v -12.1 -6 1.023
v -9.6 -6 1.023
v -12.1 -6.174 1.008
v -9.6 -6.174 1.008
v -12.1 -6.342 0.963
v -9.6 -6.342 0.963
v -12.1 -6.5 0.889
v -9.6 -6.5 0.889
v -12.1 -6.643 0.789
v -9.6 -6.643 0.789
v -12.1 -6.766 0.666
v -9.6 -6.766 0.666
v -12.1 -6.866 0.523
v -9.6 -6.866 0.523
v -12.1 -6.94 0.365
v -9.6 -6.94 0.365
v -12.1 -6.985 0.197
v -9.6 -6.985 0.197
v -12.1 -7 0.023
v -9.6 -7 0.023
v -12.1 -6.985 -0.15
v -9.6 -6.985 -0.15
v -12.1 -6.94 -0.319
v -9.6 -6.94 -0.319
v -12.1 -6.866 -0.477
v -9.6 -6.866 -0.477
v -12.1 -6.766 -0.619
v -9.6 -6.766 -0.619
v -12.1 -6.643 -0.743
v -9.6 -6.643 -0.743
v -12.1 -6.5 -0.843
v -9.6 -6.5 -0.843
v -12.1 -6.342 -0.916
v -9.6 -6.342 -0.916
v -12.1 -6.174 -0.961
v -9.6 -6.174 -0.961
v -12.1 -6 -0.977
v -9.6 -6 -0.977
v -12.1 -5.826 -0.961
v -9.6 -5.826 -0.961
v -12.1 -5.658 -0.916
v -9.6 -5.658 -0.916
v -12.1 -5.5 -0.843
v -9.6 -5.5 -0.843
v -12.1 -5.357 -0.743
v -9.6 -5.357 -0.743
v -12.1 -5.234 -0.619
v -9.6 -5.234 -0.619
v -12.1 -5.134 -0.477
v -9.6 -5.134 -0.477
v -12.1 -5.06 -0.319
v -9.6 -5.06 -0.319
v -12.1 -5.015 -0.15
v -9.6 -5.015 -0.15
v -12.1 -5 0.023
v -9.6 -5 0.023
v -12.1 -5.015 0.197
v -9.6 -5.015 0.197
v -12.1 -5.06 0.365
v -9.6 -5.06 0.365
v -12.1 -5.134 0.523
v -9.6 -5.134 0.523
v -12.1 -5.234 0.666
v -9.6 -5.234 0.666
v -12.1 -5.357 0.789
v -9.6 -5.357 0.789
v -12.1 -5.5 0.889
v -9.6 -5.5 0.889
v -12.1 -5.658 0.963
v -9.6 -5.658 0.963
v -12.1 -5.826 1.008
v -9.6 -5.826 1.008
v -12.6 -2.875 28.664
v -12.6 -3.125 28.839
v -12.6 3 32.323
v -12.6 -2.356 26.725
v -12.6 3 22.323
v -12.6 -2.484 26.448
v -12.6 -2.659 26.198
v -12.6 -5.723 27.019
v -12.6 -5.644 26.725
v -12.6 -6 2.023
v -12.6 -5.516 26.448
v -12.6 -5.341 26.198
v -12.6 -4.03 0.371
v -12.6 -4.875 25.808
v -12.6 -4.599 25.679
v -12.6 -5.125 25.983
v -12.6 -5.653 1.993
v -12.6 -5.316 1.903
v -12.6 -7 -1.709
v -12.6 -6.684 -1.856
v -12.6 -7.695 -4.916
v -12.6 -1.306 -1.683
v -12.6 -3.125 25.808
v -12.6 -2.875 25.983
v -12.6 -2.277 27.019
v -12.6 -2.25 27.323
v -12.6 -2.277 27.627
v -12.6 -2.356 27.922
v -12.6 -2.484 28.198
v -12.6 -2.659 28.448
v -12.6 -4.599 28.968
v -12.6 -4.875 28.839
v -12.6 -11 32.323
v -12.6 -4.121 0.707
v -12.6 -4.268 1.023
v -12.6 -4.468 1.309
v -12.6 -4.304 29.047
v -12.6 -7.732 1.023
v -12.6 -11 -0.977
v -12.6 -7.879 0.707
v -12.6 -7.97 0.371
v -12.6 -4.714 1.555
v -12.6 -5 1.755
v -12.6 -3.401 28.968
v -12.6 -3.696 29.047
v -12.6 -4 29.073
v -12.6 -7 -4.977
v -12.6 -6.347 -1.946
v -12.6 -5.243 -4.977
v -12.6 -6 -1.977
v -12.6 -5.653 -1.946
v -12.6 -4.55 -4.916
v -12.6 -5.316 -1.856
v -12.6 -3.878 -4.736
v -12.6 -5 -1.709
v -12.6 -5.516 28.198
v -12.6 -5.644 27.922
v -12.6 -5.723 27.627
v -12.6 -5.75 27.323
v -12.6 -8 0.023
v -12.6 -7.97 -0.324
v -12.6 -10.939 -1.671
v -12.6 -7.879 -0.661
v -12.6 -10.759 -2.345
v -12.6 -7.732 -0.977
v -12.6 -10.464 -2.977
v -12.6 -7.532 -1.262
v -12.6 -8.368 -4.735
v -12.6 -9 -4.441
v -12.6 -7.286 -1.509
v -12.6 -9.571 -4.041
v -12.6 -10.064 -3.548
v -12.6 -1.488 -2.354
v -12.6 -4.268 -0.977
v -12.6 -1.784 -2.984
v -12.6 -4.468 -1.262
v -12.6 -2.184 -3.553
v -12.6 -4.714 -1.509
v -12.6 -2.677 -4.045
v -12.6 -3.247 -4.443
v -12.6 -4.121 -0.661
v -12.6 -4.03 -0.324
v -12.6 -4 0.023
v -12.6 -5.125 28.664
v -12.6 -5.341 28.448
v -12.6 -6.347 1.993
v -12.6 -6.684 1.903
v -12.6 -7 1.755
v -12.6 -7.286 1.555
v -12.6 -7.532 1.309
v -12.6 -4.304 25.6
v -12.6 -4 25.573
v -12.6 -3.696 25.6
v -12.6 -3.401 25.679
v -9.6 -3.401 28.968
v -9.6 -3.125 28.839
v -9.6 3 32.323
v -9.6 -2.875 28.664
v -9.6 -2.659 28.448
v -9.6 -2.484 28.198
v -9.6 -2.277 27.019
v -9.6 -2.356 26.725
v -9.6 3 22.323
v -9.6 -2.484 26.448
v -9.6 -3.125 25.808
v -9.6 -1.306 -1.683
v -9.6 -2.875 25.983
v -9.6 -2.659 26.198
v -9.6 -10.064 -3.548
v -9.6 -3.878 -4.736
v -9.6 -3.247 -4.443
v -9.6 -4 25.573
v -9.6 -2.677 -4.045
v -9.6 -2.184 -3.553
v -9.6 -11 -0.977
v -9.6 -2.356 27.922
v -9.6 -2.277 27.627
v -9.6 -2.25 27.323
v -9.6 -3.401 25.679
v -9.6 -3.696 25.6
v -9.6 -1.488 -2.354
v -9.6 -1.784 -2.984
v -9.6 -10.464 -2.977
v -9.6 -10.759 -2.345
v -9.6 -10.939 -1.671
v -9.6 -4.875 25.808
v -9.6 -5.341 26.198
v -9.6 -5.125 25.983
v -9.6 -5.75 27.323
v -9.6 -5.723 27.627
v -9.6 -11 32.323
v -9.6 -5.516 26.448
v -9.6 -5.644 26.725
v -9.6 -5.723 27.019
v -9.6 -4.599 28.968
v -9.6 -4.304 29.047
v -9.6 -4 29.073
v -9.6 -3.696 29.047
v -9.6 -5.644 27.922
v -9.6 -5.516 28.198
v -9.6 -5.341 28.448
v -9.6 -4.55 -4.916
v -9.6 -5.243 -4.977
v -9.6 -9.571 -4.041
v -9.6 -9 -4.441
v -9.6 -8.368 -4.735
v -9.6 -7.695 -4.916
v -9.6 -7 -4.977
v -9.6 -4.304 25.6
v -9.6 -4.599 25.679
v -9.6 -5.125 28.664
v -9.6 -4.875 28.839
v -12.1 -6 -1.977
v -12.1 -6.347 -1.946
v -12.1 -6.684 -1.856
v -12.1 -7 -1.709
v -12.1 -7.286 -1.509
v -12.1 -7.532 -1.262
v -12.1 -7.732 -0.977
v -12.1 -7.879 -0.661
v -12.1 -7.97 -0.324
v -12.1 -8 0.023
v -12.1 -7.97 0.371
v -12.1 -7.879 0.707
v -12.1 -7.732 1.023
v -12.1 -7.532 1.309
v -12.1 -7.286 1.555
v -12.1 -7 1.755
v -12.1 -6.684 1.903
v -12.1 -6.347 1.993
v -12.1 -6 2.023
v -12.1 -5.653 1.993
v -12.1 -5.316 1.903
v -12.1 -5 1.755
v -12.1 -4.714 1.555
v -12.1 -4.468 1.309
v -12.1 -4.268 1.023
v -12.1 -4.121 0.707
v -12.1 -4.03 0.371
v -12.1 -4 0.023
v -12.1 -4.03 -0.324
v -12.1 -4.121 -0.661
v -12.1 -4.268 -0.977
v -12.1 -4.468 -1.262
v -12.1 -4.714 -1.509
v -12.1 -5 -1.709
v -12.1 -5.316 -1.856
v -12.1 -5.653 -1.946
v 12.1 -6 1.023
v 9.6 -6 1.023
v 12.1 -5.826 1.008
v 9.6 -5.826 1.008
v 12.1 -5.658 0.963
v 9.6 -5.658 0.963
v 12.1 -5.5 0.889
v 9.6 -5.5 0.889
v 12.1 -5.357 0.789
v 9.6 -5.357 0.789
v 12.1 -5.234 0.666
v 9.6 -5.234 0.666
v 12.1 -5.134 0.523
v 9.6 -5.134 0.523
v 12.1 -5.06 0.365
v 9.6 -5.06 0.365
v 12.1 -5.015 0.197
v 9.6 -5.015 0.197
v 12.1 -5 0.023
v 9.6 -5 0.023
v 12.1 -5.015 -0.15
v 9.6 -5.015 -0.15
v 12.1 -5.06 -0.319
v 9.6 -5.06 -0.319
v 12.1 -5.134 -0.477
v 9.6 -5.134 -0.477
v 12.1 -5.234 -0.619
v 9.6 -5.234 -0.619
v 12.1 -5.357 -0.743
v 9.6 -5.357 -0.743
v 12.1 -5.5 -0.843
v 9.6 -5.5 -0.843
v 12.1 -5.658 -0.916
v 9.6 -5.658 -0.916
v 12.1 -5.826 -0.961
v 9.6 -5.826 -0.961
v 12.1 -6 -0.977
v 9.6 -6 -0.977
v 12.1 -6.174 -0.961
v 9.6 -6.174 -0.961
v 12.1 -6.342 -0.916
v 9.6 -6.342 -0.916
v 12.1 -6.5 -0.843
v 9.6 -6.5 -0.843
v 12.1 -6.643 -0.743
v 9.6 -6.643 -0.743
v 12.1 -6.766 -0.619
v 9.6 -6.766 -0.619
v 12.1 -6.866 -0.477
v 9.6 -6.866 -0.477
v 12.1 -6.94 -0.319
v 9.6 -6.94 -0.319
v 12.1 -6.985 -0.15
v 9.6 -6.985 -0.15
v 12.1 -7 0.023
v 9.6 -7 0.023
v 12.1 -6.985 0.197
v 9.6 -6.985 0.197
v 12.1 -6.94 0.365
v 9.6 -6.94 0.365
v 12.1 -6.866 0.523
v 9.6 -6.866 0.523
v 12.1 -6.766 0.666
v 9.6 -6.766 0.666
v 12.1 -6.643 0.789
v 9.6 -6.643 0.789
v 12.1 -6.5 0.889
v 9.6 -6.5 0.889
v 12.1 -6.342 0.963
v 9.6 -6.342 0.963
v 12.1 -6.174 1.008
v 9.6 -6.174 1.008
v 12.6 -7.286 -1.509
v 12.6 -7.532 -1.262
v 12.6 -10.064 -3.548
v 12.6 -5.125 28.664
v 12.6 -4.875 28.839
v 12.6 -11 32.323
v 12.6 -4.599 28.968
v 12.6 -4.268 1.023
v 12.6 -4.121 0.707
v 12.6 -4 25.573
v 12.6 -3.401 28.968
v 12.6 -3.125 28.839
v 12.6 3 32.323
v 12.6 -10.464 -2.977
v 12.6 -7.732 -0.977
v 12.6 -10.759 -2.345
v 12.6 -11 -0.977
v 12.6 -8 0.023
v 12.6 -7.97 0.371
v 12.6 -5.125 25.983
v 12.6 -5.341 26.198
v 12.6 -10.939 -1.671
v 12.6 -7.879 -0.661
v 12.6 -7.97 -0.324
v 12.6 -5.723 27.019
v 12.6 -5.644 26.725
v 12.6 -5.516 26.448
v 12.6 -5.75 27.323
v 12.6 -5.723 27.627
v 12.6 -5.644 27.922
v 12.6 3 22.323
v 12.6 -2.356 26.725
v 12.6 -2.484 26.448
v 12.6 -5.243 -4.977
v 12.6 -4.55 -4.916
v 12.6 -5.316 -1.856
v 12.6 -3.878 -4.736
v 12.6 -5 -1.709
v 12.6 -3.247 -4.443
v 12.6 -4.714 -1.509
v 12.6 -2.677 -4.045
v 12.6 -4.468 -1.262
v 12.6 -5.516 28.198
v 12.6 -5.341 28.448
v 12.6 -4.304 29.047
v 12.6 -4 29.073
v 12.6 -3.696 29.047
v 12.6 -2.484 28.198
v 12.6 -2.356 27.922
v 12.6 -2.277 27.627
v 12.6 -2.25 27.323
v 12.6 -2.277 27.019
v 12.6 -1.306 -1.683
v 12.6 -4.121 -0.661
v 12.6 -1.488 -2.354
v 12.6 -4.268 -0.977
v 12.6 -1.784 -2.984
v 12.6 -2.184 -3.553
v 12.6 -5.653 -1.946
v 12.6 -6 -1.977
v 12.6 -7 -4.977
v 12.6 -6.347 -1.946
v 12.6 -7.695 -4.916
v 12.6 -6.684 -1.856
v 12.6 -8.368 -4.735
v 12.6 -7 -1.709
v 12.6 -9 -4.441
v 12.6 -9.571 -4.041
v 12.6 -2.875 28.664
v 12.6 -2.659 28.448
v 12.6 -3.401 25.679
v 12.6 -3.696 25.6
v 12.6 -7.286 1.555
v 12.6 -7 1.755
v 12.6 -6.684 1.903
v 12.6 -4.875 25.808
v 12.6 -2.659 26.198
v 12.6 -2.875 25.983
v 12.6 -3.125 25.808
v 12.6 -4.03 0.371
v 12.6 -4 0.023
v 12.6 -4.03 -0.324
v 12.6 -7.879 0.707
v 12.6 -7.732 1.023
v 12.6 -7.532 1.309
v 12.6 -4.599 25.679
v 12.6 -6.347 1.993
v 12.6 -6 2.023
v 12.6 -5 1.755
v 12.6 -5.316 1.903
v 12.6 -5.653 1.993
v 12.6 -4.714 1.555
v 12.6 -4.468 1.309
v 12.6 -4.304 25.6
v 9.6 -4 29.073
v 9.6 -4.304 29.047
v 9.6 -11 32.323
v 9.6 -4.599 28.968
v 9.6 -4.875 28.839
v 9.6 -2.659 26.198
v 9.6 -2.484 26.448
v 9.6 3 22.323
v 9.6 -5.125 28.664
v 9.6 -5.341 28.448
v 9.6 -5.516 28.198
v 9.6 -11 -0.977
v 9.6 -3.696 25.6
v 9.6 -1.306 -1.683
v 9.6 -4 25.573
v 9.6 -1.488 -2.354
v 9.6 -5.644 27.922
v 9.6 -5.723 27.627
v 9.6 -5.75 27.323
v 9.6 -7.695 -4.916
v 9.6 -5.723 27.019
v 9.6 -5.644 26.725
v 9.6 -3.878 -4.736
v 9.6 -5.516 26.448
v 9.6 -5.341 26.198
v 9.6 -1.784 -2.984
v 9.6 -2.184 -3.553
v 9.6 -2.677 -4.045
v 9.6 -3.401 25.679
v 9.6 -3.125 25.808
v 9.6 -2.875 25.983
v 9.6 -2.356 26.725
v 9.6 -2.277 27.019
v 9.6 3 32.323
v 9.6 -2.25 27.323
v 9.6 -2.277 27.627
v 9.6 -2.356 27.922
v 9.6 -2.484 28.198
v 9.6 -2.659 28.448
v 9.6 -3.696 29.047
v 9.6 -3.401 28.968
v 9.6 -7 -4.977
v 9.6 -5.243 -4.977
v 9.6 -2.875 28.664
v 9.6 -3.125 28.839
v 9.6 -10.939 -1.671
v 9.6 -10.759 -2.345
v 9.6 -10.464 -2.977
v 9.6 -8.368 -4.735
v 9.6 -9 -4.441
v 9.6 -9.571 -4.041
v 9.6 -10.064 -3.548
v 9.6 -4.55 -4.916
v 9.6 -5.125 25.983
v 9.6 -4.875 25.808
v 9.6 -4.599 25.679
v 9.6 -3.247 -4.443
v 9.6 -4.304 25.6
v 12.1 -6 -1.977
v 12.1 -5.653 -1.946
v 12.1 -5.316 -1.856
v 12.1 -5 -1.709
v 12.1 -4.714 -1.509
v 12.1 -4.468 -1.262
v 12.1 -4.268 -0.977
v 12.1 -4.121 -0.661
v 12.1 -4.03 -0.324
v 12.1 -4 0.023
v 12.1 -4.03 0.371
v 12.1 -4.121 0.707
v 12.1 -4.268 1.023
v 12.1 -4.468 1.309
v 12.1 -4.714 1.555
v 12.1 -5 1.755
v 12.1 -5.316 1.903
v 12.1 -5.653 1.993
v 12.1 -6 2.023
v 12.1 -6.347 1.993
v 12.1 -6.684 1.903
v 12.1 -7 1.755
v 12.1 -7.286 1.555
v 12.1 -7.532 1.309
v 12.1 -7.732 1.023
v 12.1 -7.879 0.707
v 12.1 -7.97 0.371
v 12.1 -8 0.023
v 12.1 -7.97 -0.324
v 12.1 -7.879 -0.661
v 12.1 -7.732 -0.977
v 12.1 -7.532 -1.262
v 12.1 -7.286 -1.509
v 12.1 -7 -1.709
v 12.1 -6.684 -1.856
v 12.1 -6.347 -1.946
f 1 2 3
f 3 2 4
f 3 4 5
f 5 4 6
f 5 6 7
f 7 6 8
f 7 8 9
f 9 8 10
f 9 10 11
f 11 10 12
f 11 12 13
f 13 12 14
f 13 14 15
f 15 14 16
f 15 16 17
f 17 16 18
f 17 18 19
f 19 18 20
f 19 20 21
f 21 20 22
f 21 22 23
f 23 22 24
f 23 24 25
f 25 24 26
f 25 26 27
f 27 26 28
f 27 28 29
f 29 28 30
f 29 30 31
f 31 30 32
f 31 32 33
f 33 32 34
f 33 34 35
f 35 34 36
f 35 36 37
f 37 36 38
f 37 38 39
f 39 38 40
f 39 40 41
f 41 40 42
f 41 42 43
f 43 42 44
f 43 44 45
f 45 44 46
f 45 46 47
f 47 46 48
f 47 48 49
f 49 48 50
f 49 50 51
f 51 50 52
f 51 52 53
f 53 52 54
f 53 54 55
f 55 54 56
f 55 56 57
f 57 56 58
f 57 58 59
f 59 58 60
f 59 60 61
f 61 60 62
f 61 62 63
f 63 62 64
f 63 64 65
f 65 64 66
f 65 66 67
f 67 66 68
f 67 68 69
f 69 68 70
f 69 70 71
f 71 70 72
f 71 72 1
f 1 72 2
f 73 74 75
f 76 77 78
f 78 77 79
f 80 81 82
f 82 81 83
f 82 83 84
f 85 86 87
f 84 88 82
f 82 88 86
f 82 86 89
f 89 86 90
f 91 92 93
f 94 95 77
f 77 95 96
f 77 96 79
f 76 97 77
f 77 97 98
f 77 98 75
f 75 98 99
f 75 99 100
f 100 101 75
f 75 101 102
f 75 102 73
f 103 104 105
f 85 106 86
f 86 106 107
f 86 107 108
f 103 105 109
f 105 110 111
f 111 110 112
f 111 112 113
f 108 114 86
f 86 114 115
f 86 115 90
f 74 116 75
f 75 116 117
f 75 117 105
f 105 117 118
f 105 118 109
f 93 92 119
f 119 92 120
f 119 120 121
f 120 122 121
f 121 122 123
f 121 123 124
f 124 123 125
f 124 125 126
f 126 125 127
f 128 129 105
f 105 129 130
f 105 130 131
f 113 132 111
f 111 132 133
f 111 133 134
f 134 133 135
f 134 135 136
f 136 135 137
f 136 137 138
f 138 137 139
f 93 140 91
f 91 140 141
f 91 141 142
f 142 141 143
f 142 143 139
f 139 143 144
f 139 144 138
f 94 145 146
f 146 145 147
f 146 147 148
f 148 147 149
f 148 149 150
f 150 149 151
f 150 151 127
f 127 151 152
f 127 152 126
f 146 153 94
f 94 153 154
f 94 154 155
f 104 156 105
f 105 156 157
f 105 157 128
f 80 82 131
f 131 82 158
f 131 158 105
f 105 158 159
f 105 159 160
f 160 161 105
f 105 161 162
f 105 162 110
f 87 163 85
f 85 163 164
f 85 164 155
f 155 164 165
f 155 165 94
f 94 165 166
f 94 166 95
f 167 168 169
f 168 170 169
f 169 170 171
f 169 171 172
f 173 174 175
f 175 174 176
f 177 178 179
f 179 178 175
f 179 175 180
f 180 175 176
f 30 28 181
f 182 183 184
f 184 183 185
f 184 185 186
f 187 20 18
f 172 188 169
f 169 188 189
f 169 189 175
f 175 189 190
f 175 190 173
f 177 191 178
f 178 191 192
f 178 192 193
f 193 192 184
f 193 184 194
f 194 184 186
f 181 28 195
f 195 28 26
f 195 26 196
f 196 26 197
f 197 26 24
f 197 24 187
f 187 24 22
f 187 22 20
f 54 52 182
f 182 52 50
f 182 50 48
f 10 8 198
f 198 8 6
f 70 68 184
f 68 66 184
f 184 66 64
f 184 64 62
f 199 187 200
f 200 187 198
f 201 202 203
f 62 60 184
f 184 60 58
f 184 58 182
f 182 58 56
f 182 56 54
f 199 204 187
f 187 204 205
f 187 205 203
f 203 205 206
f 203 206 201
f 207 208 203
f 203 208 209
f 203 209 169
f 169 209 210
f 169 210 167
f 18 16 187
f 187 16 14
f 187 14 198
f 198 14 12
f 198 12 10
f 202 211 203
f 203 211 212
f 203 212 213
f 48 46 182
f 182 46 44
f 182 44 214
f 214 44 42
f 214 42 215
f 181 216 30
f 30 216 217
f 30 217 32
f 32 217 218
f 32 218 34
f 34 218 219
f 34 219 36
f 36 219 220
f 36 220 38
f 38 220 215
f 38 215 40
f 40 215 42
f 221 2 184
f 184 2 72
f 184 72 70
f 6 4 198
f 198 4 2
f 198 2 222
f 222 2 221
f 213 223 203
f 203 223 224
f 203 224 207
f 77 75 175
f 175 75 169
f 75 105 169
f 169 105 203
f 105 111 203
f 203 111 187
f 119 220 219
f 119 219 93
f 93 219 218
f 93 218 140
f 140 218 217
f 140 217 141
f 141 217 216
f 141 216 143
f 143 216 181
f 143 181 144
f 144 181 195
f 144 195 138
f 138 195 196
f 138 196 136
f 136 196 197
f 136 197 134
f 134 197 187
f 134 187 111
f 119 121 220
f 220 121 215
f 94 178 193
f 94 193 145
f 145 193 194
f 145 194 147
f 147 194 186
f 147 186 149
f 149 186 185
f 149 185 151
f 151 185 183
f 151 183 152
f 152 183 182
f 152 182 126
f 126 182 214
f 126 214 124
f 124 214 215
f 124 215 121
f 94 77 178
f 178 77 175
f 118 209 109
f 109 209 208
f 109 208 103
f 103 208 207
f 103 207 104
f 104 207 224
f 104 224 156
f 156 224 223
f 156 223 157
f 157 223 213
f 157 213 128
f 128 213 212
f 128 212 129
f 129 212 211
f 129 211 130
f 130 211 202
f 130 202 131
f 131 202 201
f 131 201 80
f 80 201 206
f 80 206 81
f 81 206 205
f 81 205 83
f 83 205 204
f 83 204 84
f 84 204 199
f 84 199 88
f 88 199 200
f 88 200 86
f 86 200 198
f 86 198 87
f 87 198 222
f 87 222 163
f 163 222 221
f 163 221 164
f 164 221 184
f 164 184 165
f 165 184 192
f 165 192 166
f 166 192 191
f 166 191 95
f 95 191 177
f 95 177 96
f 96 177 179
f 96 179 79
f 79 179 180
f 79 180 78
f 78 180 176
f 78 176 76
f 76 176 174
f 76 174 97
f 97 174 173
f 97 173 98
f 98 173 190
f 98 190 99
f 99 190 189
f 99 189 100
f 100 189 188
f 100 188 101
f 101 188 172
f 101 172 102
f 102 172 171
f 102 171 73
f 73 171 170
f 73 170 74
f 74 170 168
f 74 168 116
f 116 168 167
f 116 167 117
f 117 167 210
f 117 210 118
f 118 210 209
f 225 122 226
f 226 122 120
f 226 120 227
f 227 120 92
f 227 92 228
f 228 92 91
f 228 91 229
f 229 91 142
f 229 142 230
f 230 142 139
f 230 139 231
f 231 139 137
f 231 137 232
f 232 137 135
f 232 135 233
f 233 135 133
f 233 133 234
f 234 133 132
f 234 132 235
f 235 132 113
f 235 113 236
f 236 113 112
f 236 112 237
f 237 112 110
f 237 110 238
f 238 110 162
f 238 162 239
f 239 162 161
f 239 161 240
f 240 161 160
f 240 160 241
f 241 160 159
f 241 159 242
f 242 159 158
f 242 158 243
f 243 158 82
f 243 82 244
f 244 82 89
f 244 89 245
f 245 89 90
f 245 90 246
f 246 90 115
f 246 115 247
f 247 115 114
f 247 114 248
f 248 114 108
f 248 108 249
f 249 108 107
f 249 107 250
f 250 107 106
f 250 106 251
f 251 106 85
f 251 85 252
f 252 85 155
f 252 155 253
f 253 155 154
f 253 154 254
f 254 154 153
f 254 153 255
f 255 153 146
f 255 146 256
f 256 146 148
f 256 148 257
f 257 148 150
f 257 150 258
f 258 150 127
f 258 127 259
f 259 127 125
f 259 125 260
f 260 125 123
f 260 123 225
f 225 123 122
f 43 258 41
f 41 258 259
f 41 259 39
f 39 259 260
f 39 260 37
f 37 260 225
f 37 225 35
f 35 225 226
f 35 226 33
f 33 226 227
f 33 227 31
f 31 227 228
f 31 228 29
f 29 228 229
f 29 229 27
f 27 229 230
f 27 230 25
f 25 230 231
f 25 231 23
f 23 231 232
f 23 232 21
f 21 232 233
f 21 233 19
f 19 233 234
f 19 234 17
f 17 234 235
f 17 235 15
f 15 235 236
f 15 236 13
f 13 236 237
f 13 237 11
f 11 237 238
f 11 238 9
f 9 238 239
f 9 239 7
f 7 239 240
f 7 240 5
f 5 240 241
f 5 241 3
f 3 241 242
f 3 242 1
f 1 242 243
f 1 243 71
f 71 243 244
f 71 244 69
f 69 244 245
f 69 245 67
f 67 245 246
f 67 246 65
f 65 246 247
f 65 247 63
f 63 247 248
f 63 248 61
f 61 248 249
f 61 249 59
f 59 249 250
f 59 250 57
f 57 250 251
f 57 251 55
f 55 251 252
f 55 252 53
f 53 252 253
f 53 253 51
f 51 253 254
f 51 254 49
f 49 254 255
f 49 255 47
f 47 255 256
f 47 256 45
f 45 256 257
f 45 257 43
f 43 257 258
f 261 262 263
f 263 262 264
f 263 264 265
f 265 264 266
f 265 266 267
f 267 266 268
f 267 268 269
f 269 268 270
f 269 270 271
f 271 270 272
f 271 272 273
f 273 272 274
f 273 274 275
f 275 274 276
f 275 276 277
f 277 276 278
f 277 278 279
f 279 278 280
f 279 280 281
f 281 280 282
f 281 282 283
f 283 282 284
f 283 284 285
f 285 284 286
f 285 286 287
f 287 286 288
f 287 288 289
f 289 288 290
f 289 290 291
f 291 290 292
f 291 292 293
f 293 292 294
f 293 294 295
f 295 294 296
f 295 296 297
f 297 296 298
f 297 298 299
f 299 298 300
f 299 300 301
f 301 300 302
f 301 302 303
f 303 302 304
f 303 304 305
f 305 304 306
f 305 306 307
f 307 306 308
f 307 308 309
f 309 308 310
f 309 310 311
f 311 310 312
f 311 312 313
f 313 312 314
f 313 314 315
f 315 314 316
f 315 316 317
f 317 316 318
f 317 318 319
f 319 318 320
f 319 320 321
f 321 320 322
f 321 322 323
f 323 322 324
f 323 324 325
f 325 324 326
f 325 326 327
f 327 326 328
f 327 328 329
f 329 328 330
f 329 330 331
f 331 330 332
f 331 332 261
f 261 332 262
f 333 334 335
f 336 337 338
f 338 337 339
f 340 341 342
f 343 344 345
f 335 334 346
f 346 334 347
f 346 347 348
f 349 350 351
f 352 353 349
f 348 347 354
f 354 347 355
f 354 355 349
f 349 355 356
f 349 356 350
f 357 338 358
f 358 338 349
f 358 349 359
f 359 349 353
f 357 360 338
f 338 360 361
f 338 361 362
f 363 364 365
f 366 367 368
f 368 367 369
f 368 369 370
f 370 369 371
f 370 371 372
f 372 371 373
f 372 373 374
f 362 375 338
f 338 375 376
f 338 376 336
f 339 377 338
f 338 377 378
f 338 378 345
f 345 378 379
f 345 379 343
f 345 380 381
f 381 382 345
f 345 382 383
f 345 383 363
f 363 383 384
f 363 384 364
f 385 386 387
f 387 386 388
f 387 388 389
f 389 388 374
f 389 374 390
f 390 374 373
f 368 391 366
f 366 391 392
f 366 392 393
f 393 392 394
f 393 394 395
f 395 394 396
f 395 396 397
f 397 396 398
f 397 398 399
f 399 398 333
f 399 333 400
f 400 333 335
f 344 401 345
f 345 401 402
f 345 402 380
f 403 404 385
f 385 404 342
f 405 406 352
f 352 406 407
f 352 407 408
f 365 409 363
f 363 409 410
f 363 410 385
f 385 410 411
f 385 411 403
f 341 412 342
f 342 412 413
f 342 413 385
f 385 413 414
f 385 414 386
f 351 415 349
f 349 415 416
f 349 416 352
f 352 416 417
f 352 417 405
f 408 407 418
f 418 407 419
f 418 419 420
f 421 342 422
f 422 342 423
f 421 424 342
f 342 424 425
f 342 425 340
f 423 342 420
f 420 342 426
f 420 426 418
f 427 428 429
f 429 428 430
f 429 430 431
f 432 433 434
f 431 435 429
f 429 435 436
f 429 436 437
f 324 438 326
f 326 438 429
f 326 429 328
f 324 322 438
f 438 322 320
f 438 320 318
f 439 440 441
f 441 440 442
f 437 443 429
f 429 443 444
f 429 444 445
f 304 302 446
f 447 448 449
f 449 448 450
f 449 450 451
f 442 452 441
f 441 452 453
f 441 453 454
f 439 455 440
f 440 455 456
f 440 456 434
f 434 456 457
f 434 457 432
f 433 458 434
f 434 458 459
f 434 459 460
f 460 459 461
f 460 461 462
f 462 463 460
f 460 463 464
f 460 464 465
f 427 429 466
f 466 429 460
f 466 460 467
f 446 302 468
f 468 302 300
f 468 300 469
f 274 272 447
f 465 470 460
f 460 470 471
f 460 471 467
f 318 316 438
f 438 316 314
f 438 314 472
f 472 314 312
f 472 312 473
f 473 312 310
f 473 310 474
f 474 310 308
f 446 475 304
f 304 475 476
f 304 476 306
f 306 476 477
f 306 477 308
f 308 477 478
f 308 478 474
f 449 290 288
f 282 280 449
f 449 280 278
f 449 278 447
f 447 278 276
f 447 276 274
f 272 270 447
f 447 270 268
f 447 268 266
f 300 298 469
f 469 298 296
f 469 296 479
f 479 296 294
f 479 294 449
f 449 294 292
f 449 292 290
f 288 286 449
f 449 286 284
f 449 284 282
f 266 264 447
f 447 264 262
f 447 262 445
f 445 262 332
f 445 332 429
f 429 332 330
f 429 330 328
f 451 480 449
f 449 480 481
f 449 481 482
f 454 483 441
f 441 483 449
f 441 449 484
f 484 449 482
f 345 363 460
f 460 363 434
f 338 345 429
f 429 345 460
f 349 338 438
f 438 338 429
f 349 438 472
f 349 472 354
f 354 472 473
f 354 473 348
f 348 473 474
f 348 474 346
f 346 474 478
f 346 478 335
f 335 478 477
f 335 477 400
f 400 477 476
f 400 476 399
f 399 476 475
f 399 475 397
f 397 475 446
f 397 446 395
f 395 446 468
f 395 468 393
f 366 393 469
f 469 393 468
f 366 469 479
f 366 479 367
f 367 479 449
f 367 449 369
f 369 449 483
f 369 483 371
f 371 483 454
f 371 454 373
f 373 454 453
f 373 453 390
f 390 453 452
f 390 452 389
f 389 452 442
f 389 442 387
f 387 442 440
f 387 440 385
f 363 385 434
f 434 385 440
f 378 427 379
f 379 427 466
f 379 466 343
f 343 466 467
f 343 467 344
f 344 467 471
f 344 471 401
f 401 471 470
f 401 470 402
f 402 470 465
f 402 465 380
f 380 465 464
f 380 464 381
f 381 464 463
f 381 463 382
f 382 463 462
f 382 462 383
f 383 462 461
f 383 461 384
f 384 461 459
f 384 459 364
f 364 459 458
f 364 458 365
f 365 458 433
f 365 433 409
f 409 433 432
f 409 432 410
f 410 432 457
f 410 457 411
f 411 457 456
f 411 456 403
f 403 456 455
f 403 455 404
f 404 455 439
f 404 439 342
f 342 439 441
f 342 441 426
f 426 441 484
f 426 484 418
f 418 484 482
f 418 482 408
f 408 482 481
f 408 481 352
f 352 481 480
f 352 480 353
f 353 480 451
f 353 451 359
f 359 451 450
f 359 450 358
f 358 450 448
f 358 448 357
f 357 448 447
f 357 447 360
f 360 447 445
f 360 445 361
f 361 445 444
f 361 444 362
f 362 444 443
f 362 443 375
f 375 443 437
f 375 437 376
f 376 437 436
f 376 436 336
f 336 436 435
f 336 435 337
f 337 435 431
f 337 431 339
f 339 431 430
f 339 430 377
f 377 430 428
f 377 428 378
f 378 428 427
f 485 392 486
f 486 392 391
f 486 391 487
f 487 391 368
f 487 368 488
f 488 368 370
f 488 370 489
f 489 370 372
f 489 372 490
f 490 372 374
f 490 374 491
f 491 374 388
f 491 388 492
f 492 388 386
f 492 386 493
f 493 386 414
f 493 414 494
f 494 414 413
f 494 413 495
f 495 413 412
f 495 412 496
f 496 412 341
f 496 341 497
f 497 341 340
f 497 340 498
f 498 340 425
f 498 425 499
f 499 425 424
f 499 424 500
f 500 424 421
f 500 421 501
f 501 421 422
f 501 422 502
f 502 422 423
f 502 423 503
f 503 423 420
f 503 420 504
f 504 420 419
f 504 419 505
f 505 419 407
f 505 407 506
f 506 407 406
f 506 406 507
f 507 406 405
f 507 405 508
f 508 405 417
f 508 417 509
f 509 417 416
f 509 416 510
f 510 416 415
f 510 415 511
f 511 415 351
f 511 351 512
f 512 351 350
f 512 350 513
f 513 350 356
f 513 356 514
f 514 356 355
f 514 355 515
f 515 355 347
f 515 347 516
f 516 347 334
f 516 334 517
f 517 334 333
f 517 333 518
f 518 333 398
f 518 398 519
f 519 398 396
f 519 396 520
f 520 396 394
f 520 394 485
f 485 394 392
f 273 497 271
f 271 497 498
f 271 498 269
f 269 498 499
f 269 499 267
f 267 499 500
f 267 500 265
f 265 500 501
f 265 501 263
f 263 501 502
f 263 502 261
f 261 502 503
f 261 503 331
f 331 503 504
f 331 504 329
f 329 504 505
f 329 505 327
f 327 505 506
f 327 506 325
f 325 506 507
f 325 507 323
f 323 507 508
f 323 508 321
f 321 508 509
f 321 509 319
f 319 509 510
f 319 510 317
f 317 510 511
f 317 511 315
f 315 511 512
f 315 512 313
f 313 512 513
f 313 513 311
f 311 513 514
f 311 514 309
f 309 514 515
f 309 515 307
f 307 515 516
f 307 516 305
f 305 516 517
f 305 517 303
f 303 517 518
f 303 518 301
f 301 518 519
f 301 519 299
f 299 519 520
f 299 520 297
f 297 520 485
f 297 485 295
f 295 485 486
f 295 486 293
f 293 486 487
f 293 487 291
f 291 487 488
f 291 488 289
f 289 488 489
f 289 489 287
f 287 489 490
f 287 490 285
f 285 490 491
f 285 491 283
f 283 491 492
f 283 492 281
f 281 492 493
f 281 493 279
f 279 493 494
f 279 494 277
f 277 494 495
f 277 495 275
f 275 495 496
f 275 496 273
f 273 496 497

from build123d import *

# Parameters (mm, degrees)
SKETCH2_R           = 1
SKETCH2_R_2         = 1.75
BOSS_EXTRUDE1_DEPTH = 3
SKETCH3_R           = 2
CUT_EXTRUDE1_DEPTH  = 0.5


with BuildPart() as part:
    # Sketch2 → Boss-Extrude1 (new body)
    with BuildSketch(Plane(origin=(9.6, 0, 0), x_dir=(0, 0, -1), z_dir=(1, 0, 0))):
        with BuildLine():
            Line((-22.323377708, -11), (0.976622292, -11))
            ThreePointArc((0.976622292, -11), (3.805049417, -9.828427125), (4.976622292, -7))
            Line((4.976622292, -7), (4.976622292, -5.243211535))
            ThreePointArc((4.976622292, -5.243211535), (4.044591546, -2.676586386), (1.682839964, -1.306048013))
            Line((1.682839964, -1.306048013), (-22.323377708, 3))
            Line((-22.323377708, 3), (-32.323377708, 3))
            Line((-32.323377708, 3), (-32.323377708, -11))
            Line((-32.323377708, -11), (-22.323377708, -11))
        make_face()
        with Locations((-0.023377708, -6)):
            Circle(SKETCH2_R, mode=Mode.SUBTRACT)
        with Locations((-27.323377708, -4)):
            Circle(SKETCH2_R_2, mode=Mode.SUBTRACT)
    extrude(amount=BOSS_EXTRUDE1_DEPTH)

    # Sketch3 → Cut-Extrude1 (cut)
    with BuildSketch(Plane(origin=(12.6, 0, 0), x_dir=(0, 0, -1), z_dir=(1, 0, 0))):
        with Locations((-0.023377708, -6)):
            Circle(SKETCH3_R)
    extrude(amount=-CUT_EXTRUDE1_DEPTH, mode=Mode.SUBTRACT)


with BuildPart() as body_2:
    # Mirror4: mirrored copy
    add(part.part.mirror(Plane(origin=(0, 0, 0), x_dir=(0, 0, 1), z_dir=(1, 0, 0))))


solid = Compound([part.part, body_2.part])
